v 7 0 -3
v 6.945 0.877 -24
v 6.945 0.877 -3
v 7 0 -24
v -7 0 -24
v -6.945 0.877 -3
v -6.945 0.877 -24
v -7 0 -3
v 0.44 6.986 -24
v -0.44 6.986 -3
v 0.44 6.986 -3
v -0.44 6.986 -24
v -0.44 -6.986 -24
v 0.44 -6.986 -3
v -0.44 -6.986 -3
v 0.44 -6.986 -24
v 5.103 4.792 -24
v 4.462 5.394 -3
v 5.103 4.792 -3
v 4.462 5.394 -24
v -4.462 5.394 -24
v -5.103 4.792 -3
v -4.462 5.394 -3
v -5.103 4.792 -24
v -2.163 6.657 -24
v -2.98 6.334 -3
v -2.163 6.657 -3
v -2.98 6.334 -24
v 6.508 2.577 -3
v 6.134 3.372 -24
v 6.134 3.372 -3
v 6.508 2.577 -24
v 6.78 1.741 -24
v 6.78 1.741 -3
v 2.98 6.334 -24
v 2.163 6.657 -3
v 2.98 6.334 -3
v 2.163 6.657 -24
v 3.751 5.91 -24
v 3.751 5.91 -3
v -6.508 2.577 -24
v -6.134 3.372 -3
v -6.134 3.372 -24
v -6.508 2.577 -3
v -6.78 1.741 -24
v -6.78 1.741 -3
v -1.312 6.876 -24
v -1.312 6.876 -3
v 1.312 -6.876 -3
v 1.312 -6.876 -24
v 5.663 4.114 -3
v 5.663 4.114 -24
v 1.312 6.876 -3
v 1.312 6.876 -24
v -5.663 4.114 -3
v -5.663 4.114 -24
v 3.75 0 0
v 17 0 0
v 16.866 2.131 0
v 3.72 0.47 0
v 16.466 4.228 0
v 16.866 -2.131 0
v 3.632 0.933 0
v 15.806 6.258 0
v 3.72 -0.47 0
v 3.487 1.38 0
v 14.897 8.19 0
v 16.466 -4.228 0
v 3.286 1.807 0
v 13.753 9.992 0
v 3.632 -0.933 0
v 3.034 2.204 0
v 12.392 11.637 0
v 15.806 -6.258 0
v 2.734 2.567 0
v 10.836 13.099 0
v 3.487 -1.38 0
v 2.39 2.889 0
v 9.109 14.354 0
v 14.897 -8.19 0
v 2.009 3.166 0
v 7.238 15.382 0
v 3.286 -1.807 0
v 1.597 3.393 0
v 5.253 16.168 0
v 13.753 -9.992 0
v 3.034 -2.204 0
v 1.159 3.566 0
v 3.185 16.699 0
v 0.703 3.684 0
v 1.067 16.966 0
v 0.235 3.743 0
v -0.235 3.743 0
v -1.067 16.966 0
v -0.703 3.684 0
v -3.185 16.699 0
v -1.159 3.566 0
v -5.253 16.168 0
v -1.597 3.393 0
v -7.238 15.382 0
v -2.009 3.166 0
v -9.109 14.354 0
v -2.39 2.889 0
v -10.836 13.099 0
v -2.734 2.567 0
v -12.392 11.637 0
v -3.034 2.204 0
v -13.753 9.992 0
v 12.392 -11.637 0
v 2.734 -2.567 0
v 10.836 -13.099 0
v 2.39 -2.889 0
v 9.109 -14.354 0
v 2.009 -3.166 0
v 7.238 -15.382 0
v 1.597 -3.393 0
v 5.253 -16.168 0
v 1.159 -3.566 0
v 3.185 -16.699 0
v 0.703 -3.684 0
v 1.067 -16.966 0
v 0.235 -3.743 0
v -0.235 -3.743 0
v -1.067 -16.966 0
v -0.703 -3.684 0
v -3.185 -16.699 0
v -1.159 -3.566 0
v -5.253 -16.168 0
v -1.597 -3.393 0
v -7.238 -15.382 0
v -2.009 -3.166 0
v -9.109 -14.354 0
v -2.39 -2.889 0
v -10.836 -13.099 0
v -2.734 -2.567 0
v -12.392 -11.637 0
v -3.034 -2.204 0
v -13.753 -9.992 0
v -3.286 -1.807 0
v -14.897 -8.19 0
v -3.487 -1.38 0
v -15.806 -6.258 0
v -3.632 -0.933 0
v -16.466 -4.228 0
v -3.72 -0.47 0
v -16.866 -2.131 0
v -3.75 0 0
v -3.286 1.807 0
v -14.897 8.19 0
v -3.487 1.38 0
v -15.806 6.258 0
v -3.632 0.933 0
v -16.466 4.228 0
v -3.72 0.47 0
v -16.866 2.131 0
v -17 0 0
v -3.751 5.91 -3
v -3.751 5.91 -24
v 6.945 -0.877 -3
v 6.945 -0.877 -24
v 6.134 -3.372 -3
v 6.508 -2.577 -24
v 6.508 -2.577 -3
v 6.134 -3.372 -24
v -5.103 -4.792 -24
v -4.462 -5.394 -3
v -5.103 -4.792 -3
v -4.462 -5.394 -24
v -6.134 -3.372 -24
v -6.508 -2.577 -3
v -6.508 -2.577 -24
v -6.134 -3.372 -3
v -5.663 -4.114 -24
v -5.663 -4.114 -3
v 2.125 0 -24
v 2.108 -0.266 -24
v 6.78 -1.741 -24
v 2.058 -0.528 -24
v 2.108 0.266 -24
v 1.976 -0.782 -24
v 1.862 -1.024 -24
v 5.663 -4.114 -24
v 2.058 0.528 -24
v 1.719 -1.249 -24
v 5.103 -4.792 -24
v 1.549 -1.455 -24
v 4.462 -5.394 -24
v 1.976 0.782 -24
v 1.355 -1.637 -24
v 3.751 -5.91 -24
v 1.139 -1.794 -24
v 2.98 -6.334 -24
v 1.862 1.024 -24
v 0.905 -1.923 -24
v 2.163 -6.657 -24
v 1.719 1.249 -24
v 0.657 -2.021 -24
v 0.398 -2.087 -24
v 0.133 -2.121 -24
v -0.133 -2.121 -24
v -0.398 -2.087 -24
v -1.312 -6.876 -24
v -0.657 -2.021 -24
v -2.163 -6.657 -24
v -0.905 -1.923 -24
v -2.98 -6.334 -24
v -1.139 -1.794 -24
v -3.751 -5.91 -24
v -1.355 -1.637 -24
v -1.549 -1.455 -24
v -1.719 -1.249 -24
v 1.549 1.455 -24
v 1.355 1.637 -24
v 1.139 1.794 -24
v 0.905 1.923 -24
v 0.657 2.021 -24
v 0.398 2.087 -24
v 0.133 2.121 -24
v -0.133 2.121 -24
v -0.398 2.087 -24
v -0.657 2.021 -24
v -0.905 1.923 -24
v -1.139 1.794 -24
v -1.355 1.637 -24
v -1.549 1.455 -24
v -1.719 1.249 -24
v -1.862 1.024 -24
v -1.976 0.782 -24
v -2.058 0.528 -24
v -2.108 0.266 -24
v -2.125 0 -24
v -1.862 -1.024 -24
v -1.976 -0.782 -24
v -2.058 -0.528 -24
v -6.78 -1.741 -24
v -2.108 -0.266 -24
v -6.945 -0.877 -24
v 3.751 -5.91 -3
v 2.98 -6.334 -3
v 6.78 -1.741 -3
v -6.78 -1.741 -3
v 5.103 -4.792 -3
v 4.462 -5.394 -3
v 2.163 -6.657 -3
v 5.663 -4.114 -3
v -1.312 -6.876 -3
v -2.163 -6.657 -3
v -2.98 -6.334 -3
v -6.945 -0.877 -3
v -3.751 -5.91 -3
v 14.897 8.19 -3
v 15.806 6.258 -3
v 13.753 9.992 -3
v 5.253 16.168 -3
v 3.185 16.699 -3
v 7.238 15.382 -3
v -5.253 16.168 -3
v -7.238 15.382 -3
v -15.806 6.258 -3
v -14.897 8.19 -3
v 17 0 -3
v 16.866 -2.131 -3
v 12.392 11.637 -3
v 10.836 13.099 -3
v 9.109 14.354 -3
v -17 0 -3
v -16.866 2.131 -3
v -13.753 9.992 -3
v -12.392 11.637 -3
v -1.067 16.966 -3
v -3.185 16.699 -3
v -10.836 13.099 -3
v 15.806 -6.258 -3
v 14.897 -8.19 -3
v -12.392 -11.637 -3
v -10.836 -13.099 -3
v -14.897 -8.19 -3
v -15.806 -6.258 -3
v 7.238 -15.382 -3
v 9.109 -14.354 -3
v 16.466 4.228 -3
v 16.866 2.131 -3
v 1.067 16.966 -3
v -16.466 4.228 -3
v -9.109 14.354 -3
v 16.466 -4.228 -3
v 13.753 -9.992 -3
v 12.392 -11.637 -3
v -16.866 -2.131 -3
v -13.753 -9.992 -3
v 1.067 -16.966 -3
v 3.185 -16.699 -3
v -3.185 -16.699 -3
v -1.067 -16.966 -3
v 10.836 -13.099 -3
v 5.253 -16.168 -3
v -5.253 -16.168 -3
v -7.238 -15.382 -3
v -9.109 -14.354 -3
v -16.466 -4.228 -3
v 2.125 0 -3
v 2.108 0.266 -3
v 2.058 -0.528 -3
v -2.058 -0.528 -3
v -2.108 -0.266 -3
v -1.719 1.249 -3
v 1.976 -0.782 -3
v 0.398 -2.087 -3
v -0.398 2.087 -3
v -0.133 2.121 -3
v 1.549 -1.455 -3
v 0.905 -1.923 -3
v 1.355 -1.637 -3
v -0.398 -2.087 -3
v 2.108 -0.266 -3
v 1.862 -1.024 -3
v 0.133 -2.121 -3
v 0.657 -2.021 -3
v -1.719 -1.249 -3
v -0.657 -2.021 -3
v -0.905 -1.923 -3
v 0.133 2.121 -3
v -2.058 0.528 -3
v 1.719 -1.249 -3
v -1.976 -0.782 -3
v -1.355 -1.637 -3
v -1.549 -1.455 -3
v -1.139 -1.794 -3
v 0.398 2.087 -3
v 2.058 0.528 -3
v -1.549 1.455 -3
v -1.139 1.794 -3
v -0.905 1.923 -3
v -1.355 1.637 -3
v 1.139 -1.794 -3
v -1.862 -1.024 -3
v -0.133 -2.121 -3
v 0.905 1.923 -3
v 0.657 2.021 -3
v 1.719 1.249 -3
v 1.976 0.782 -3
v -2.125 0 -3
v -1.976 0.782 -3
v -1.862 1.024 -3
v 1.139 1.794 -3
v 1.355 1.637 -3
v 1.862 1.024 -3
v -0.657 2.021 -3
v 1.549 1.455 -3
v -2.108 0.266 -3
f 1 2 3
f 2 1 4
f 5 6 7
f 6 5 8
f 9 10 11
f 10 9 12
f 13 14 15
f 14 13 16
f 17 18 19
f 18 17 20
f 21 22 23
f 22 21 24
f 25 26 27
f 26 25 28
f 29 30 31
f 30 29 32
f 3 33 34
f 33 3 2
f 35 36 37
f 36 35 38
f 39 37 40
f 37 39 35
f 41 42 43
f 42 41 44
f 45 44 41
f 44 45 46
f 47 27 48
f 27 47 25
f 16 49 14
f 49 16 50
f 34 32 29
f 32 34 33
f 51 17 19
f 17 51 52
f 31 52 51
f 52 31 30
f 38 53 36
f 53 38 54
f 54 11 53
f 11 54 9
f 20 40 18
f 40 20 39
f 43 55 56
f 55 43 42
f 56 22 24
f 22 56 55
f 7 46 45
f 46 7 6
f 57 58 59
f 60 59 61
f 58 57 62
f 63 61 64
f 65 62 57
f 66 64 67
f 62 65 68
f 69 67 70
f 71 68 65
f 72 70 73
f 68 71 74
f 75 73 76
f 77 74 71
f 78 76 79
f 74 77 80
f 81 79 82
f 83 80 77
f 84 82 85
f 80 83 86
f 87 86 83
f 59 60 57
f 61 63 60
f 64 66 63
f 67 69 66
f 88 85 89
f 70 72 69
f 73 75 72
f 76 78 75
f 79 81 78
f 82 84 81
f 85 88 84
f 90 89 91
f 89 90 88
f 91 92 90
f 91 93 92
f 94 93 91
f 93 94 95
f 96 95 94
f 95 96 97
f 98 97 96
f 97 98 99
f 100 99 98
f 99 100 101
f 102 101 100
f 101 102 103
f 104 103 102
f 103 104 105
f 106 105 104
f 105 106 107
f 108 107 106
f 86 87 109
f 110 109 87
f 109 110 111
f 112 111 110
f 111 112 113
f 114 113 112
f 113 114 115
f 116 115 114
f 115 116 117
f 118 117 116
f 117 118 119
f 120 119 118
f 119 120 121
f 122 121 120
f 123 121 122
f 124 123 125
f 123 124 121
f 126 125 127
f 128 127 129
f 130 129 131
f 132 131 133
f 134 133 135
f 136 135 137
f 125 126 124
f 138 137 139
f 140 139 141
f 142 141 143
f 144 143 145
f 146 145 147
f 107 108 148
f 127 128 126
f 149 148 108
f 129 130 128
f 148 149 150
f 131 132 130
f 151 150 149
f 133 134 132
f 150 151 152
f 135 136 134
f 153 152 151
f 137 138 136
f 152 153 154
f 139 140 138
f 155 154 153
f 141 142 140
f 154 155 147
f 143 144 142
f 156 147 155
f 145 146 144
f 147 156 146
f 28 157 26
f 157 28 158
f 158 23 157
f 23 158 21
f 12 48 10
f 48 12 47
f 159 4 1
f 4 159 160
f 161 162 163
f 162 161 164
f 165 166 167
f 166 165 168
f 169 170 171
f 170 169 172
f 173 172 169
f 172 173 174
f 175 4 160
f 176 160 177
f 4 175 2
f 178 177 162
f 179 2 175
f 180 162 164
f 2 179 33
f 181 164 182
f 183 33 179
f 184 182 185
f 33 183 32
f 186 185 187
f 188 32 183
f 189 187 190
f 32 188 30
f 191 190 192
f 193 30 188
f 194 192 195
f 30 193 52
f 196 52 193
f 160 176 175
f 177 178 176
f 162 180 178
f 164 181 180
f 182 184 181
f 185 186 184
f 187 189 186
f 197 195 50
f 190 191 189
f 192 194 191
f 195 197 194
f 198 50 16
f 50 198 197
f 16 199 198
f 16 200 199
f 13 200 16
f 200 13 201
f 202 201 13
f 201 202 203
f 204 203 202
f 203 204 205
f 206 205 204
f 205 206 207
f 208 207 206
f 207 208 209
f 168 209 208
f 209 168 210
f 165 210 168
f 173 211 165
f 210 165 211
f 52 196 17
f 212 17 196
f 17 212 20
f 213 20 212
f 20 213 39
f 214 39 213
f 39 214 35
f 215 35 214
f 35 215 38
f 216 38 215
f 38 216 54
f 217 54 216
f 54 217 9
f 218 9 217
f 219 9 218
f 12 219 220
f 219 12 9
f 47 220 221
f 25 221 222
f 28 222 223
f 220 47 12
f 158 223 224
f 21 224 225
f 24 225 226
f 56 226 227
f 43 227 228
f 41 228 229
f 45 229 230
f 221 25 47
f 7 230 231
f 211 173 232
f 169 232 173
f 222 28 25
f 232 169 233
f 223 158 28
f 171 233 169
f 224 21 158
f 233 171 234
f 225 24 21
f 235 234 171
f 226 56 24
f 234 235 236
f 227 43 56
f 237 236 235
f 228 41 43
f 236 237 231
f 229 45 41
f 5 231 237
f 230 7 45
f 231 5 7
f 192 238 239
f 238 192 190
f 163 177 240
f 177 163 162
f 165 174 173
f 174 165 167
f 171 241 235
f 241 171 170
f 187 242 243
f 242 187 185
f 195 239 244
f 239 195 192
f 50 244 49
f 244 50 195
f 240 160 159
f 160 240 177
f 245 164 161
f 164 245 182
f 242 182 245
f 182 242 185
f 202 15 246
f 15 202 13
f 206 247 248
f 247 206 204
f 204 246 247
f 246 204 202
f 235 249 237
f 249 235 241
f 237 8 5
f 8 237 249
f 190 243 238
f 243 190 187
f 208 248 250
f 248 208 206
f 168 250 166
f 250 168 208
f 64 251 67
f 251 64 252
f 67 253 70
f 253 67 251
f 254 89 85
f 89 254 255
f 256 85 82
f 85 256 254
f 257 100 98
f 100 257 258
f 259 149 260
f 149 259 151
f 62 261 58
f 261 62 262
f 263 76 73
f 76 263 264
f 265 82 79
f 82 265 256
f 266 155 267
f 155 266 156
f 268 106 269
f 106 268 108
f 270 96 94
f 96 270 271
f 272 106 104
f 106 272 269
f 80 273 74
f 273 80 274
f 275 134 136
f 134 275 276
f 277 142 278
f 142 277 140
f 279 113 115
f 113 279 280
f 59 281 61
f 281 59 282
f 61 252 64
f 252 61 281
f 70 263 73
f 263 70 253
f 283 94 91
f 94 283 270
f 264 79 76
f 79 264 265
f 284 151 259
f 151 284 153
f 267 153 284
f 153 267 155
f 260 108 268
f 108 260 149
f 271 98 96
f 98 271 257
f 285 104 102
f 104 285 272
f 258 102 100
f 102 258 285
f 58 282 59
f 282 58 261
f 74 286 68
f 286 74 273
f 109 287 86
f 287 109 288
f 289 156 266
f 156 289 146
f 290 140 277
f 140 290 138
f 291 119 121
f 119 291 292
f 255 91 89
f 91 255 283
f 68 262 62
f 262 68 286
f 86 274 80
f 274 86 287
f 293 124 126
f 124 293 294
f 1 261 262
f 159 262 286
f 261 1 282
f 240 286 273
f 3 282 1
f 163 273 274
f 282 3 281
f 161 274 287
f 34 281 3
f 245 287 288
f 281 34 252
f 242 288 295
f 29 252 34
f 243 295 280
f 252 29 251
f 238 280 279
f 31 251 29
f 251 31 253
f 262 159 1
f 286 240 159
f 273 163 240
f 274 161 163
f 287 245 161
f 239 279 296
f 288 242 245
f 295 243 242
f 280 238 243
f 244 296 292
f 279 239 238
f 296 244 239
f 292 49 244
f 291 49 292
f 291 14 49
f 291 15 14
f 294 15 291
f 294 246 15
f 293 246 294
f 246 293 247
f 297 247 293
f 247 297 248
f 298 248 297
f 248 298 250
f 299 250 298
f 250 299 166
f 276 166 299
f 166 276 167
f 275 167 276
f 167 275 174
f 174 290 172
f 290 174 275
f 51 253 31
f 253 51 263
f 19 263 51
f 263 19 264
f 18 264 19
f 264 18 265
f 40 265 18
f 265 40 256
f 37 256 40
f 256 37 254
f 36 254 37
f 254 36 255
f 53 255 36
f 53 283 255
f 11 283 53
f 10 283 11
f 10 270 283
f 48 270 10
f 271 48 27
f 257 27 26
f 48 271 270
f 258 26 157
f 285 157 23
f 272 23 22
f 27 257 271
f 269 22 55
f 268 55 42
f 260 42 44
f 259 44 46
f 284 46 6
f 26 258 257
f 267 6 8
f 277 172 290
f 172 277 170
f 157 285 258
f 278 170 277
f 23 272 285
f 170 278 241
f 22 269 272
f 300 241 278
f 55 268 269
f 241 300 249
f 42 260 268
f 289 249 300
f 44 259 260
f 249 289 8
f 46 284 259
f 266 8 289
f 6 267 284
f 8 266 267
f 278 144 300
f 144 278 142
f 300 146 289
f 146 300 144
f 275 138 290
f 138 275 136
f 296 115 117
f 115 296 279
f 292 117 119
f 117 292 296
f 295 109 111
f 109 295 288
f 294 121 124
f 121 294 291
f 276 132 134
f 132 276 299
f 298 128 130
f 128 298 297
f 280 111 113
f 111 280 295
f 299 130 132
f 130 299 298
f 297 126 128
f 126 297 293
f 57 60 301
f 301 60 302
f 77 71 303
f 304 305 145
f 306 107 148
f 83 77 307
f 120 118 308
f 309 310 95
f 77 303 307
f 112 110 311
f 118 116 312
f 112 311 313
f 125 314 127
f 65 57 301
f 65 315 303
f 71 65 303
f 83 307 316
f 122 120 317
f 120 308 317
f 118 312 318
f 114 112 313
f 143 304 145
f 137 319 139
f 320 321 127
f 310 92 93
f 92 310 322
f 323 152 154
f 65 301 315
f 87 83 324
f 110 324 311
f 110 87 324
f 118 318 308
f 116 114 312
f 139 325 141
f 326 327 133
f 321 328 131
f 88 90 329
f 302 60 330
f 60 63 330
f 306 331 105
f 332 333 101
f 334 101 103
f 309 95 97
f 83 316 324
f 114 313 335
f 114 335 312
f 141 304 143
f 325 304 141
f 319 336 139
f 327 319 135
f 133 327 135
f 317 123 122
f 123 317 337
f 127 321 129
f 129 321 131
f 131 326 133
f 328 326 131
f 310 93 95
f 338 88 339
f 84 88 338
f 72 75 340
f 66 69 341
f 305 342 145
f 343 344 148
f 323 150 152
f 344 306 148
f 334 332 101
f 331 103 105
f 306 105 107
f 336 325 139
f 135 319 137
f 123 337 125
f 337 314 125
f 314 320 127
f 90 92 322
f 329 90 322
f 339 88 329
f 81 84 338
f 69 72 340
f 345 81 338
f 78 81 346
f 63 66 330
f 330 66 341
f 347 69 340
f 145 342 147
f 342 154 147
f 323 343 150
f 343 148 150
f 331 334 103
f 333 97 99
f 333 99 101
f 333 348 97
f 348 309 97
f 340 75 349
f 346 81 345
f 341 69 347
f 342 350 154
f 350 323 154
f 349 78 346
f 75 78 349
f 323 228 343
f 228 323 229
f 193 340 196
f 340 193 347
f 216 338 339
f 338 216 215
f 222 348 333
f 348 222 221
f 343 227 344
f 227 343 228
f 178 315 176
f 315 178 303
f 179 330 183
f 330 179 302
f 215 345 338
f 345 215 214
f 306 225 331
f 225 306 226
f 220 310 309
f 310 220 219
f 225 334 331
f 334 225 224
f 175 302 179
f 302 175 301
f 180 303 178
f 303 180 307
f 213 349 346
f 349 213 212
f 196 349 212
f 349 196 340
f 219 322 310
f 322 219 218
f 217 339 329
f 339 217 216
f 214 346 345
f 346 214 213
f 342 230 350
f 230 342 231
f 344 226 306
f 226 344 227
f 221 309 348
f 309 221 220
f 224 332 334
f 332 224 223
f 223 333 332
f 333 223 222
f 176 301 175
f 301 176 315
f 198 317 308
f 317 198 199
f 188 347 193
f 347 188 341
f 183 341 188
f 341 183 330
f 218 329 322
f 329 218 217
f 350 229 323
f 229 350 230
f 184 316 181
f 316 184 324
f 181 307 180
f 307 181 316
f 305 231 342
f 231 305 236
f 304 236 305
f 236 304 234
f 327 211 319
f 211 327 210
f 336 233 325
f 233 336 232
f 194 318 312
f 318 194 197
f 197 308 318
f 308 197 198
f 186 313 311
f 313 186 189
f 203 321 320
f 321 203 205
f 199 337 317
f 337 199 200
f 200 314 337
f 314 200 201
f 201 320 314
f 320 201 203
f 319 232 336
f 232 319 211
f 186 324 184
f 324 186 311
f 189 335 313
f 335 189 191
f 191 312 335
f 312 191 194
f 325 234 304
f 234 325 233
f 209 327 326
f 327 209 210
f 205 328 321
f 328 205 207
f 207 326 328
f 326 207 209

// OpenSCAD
$fn = 50;


difference() {
	union() {
		translate(v = [0, 0, -24.0000000000]) {
			cylinder(h = 24, r = 7.0000000000);
		}
		translate(v = [0, 0, -3.0000000000]) {
			cylinder(h = 3, r = 17.0000000000);
		}
	}
	union() {
		translate(v = [0, 0, 0]) {
			rotate(a = [0, 0, 0]) {
				difference() {
					union() {
						#translate(v = [0, 0, -24.0000000000]) {
							cylinder(h = 24, r = 2.0000000000);
						}
						#translate(v = [0, 0, -3]) {
							cylinder(h = 3, r1 = 2.1250000000, r2 = 3.7500000000);
						}
						#translate(v = [0, 0, -24.0000000000]) {
							cylinder(h = 24, r = 2.1250000000);
						}
						#translate(v = [0, 0, -24.0000000000]) {
							cylinder(h = 24, r = 2.0000000000);
						}
					}
					union();
				}
			}
		}
	}
}
